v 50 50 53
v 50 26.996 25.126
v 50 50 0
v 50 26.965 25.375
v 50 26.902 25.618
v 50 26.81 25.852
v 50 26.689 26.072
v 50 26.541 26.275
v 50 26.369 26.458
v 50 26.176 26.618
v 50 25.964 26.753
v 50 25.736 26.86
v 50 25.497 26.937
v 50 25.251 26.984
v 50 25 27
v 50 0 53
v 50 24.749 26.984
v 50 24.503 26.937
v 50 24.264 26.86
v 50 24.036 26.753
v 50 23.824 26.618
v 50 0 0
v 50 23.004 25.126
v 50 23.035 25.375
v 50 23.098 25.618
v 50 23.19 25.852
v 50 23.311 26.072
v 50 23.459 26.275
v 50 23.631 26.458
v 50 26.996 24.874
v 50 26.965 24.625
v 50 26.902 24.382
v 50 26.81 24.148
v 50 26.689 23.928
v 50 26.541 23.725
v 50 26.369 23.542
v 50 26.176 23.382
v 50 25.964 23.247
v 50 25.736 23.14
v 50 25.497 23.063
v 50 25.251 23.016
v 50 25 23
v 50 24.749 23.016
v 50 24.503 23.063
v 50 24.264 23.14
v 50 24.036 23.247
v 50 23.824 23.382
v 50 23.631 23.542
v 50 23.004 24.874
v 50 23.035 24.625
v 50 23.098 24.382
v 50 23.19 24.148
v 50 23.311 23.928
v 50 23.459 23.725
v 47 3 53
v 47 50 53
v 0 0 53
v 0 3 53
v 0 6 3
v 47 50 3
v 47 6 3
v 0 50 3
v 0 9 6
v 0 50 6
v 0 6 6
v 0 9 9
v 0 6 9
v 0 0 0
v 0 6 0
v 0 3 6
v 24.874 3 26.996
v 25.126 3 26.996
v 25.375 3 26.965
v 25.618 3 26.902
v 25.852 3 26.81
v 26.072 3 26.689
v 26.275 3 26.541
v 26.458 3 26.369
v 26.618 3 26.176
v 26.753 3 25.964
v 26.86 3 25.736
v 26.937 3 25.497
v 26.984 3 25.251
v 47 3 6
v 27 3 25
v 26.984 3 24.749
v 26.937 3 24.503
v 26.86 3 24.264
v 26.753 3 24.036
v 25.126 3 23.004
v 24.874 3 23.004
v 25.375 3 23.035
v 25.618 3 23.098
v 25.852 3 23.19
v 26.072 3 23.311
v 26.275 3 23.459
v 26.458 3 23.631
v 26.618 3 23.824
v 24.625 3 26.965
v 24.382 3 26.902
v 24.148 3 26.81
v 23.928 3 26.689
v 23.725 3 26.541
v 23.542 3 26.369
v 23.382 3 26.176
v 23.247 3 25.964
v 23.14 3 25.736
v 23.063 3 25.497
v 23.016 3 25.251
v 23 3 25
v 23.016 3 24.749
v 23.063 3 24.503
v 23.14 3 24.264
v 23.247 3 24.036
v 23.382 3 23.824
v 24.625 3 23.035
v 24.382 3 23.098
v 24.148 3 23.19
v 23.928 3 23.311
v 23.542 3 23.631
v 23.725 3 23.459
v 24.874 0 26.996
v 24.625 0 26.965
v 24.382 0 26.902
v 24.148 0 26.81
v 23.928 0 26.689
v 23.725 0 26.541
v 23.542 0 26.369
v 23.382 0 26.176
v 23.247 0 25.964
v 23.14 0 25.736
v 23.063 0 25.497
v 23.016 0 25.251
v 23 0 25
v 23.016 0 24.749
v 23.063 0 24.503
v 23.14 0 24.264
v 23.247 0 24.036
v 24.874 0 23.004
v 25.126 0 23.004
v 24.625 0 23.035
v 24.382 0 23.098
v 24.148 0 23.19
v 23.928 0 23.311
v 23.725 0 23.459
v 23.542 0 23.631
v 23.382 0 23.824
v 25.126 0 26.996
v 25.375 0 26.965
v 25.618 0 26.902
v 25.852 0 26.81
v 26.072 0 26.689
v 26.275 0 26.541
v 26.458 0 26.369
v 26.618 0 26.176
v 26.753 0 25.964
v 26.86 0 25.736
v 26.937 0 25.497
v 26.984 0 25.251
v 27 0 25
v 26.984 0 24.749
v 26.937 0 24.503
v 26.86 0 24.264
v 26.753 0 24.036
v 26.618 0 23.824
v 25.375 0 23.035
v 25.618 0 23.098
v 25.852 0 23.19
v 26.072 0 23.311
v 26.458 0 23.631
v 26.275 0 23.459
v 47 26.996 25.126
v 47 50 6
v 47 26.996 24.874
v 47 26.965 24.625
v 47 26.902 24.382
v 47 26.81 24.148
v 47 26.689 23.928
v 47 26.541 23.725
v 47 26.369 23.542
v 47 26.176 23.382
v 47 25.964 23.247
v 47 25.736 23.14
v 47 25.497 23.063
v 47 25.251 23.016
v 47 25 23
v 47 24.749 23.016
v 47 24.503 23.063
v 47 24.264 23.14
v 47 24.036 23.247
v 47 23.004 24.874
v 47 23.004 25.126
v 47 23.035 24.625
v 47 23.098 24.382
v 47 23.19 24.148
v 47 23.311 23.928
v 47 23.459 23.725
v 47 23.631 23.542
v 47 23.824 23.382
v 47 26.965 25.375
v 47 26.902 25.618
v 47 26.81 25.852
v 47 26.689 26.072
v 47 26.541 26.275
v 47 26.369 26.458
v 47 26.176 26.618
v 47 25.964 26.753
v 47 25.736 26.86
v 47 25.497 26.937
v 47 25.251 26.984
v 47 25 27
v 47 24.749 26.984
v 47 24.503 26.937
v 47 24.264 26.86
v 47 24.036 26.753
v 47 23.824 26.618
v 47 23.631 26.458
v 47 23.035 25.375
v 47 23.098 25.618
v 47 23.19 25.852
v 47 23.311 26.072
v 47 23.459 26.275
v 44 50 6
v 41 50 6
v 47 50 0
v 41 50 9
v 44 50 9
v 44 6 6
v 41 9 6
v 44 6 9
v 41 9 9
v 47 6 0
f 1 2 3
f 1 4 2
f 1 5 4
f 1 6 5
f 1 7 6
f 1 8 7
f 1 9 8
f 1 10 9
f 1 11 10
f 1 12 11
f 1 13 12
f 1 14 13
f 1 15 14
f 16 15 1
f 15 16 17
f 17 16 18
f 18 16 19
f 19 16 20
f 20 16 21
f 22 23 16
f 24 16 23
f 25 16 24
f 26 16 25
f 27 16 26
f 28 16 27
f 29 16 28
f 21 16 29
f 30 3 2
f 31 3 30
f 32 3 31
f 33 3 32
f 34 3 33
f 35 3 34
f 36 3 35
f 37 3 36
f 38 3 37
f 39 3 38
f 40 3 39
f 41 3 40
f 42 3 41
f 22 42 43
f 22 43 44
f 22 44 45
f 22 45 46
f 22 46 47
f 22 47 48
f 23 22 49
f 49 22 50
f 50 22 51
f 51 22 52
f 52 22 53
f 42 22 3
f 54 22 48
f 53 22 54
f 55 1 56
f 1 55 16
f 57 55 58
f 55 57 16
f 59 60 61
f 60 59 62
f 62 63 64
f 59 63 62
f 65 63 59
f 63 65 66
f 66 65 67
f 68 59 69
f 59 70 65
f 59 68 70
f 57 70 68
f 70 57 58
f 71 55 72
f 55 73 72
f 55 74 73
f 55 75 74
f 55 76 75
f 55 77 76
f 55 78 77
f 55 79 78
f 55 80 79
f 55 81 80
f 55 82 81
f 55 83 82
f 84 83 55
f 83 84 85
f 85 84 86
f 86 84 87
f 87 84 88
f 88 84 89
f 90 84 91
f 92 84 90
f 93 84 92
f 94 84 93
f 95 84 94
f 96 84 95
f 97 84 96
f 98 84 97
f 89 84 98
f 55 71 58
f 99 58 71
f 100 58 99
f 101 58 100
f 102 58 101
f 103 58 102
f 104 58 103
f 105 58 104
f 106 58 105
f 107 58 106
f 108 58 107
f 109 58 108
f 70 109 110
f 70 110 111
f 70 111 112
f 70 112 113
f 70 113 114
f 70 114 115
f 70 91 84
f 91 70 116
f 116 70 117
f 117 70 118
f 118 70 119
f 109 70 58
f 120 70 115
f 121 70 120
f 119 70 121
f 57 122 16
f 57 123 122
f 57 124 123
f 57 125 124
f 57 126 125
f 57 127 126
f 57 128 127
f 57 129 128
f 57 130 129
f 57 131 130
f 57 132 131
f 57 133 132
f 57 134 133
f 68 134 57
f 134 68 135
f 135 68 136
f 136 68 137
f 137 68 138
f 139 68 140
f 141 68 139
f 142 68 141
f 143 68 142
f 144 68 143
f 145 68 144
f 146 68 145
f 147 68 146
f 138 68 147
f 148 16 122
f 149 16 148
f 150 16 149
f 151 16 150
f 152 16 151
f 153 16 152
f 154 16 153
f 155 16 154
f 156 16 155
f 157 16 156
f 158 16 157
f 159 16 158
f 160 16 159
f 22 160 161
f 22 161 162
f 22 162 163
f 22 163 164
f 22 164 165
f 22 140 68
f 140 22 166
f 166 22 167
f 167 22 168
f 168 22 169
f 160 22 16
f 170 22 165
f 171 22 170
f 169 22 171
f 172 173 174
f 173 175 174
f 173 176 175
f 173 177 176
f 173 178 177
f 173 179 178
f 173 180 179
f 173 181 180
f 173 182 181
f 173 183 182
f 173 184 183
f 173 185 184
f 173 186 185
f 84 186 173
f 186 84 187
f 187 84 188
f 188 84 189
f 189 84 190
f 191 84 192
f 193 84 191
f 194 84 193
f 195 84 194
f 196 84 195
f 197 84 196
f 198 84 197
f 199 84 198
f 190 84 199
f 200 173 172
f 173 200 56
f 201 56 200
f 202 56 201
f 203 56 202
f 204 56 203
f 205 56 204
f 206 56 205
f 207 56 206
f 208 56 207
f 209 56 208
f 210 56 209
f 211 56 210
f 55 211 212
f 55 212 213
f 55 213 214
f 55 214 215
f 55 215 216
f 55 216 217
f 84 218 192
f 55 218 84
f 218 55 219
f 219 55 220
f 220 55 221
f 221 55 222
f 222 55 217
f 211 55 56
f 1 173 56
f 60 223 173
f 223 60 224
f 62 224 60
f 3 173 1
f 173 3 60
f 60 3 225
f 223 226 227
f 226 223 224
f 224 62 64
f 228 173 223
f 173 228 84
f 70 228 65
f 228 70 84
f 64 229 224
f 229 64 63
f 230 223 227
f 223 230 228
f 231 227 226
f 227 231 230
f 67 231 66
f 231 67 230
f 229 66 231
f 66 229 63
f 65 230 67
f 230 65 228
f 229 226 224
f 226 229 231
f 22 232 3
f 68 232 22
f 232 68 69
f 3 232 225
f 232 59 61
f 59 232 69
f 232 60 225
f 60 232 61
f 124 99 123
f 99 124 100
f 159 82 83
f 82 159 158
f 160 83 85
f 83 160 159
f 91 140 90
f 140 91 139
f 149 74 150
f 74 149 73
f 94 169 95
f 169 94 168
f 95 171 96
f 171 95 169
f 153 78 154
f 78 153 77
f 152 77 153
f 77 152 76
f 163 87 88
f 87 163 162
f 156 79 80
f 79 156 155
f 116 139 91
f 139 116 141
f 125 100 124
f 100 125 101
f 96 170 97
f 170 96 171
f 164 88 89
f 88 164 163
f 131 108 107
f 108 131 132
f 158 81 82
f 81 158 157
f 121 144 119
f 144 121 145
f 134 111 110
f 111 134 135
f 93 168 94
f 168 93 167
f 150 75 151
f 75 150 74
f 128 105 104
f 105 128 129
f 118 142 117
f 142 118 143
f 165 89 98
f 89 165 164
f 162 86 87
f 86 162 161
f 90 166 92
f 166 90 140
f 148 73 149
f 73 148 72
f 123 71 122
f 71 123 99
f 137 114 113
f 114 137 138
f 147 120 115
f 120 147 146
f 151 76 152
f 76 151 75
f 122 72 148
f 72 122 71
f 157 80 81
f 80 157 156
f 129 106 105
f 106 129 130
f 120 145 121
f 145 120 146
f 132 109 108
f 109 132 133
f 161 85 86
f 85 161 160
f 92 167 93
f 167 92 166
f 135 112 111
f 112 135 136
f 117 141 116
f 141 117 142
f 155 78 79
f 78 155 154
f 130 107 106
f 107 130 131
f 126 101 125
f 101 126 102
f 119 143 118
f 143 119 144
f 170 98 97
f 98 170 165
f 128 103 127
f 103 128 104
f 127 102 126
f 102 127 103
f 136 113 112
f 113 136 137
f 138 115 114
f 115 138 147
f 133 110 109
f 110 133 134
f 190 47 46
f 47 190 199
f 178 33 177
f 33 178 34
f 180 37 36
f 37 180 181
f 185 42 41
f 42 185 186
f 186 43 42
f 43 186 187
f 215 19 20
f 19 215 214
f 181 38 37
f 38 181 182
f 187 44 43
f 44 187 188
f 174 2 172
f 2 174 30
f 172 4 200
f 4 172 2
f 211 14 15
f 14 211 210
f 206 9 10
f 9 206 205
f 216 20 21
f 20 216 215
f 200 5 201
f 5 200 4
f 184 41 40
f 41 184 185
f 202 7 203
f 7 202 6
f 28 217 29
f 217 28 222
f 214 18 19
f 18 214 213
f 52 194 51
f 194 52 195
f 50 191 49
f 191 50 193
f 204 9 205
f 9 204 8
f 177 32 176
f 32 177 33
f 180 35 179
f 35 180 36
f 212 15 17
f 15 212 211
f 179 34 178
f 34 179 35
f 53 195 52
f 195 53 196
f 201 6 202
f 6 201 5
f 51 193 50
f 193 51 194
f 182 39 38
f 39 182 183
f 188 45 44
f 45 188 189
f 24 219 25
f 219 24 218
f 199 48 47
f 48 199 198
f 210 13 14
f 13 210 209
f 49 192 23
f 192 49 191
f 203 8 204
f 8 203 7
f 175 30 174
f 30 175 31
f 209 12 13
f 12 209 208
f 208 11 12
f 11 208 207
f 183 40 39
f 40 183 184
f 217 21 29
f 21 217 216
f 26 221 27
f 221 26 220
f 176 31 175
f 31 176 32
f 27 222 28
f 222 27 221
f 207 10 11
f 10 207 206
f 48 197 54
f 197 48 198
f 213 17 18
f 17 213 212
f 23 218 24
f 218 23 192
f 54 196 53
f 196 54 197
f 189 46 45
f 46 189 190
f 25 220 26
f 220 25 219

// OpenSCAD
// file: enclosure_lib.scad
module SimpleCorner(wallWidth = 3,
                    totalWidth = 50,
                    totalHeight = 50,
                    totalDepth = 50,
                    gutterWidth = 3)
{
    // back wall
    cube([totalWidth,wallWidth,totalHeight]);
    // side wall
    translate([totalWidth,0,0])
        rotate([0,0,90])
            cube([totalDepth,wallWidth,totalHeight]);
    // base
    translate([0,totalDepth,0])
        rotate([90, 0, 0])
            cube([totalWidth,
                  wallWidth,
                  totalDepth]);
    // back gutter
    translate([0,
               wallWidth + gutterWidth,
               wallWidth * 2])
        rotate([0,90,0])
            cube([wallWidth, 
                  wallWidth, 
                  totalWidth - wallWidth - gutterWidth]);
    // side gutter
    translate([totalWidth - 2 * wallWidth - gutterWidth,
               totalDepth,
               wallWidth])
        rotate([90,0,0])
            cube([wallWidth, 
                  wallWidth, 
                  totalDepth - wallWidth - gutterWidth]);
    // gutter fill
    cube(3);
}
module Cone(holeRadius = 3)
{
    centerRadius    = 3;
    centerHeight    = 2;
    masterRadius    = 18;
    totalHeight     = 3;
    tanAlpha        = totalHeight / (masterRadius - centerRadius);
    holeHeight      = tanAlpha * (masterRadius - holeRadius);
    rotate_extrude()
        polygon(points=[
            [0, 0],
            [masterRadius, 0],
            [holeRadius, holeHeight],
            [holeRadius, 1],
            [0, 1]
        ]);
}
module Base(width = 50,
       depth = 50,
       halfHeight = 3)
{
    cube([width, depth, halfHeight]);
    translate([width / 2, depth / 2, halfHeight])
        Cone(3.5);
}

module BasedCorner(wallWidth = 3,
                   width = 50,
                   height = 50,
                   depth = 50,
                   gutterWidth = 3.4)
{
    translate([0, 0, wallWidth])
        union() {
            SimpleCorner(wallWidth, 
                         width, 
                         height - wallWidth, 
                         depth,
                         gutterWidth);
            translate([0,0, -wallWidth])
                difference() {
                    cube([width, depth, wallWidth]);
                    translate([width/2, depth/2, -.01])
                        Cone();
            }
        }
}

module top_profile(gutterWidth = 3) 
{
    polygon([
        [0, 0],
        [0, 9],
        [6, 9],
        [6, 6],
        [21,6],
        [21,3],
        [6 + gutterWidth, 3],
        [6 + gutterWidth, 0],
        [3 + gutterWidth, 0],
        [3 + gutterWidth, 3],
        [3, 3],
        [3, 0],
    ]);
}


module CableCoverBorderProfile(
    width = 6,
    borderHeight = 3,
    gutterHeight = 3,
    gutterWidth = 3)
{
    polygon([
        [0,0],
        [width, 0],
        [width, borderHeight],
        [width - gutterWidth, borderHeight],
        [width - gutterWidth, borderHeight + gutterHeight],
        [width, borderHeight + gutterHeight],
        [width, 2 * borderHeight + gutterHeight],
        [0, 2 * borderHeight + gutterHeight]
    ]);
}
module CableCoverBorderLinear(height = 10)
{
    linear_extrude(height)
        CableCoverBorderProfile();
}
union()
{
    //rotate_extrude(180)
    //    CableCoverBorderProfile();
    CableCoverBorderLinear();
    translate([-6, 3, 0])
        cube([6, 3, 10]);
    translate([-6, 9, 0])
        rotate([0, 0, 180])
            CableCoverBorderLinear();
}
// main file
use <enclosure_lib.scad>

$fn=50;
wall_h = 3;
h=50;
d=50;
w=50;
gutter_width=3;
difference() {
    union() 
    {
        translate([0, 0, wall_h])
            SimpleCorner(wall_h, w, h, d, gutter_width);
        translate([0, 0, 0])
            cube([w, wall_h * 2, wall_h]);
        translate([w - wall_h, 0, 0])
            cube([wall_h, w, wall_h]);
    }
    // back hole
    translate([
        w / 2 ,
        wall_h+1,
        h / 2
    ])
        rotate([90])
            cylinder(5, 2, 2);
    // side hole
    translate([
        w - wall_h -1,
        w / 2,
        h / 2
    ])
        rotate([0, 90])
            cylinder(5, 2, 2);
}
